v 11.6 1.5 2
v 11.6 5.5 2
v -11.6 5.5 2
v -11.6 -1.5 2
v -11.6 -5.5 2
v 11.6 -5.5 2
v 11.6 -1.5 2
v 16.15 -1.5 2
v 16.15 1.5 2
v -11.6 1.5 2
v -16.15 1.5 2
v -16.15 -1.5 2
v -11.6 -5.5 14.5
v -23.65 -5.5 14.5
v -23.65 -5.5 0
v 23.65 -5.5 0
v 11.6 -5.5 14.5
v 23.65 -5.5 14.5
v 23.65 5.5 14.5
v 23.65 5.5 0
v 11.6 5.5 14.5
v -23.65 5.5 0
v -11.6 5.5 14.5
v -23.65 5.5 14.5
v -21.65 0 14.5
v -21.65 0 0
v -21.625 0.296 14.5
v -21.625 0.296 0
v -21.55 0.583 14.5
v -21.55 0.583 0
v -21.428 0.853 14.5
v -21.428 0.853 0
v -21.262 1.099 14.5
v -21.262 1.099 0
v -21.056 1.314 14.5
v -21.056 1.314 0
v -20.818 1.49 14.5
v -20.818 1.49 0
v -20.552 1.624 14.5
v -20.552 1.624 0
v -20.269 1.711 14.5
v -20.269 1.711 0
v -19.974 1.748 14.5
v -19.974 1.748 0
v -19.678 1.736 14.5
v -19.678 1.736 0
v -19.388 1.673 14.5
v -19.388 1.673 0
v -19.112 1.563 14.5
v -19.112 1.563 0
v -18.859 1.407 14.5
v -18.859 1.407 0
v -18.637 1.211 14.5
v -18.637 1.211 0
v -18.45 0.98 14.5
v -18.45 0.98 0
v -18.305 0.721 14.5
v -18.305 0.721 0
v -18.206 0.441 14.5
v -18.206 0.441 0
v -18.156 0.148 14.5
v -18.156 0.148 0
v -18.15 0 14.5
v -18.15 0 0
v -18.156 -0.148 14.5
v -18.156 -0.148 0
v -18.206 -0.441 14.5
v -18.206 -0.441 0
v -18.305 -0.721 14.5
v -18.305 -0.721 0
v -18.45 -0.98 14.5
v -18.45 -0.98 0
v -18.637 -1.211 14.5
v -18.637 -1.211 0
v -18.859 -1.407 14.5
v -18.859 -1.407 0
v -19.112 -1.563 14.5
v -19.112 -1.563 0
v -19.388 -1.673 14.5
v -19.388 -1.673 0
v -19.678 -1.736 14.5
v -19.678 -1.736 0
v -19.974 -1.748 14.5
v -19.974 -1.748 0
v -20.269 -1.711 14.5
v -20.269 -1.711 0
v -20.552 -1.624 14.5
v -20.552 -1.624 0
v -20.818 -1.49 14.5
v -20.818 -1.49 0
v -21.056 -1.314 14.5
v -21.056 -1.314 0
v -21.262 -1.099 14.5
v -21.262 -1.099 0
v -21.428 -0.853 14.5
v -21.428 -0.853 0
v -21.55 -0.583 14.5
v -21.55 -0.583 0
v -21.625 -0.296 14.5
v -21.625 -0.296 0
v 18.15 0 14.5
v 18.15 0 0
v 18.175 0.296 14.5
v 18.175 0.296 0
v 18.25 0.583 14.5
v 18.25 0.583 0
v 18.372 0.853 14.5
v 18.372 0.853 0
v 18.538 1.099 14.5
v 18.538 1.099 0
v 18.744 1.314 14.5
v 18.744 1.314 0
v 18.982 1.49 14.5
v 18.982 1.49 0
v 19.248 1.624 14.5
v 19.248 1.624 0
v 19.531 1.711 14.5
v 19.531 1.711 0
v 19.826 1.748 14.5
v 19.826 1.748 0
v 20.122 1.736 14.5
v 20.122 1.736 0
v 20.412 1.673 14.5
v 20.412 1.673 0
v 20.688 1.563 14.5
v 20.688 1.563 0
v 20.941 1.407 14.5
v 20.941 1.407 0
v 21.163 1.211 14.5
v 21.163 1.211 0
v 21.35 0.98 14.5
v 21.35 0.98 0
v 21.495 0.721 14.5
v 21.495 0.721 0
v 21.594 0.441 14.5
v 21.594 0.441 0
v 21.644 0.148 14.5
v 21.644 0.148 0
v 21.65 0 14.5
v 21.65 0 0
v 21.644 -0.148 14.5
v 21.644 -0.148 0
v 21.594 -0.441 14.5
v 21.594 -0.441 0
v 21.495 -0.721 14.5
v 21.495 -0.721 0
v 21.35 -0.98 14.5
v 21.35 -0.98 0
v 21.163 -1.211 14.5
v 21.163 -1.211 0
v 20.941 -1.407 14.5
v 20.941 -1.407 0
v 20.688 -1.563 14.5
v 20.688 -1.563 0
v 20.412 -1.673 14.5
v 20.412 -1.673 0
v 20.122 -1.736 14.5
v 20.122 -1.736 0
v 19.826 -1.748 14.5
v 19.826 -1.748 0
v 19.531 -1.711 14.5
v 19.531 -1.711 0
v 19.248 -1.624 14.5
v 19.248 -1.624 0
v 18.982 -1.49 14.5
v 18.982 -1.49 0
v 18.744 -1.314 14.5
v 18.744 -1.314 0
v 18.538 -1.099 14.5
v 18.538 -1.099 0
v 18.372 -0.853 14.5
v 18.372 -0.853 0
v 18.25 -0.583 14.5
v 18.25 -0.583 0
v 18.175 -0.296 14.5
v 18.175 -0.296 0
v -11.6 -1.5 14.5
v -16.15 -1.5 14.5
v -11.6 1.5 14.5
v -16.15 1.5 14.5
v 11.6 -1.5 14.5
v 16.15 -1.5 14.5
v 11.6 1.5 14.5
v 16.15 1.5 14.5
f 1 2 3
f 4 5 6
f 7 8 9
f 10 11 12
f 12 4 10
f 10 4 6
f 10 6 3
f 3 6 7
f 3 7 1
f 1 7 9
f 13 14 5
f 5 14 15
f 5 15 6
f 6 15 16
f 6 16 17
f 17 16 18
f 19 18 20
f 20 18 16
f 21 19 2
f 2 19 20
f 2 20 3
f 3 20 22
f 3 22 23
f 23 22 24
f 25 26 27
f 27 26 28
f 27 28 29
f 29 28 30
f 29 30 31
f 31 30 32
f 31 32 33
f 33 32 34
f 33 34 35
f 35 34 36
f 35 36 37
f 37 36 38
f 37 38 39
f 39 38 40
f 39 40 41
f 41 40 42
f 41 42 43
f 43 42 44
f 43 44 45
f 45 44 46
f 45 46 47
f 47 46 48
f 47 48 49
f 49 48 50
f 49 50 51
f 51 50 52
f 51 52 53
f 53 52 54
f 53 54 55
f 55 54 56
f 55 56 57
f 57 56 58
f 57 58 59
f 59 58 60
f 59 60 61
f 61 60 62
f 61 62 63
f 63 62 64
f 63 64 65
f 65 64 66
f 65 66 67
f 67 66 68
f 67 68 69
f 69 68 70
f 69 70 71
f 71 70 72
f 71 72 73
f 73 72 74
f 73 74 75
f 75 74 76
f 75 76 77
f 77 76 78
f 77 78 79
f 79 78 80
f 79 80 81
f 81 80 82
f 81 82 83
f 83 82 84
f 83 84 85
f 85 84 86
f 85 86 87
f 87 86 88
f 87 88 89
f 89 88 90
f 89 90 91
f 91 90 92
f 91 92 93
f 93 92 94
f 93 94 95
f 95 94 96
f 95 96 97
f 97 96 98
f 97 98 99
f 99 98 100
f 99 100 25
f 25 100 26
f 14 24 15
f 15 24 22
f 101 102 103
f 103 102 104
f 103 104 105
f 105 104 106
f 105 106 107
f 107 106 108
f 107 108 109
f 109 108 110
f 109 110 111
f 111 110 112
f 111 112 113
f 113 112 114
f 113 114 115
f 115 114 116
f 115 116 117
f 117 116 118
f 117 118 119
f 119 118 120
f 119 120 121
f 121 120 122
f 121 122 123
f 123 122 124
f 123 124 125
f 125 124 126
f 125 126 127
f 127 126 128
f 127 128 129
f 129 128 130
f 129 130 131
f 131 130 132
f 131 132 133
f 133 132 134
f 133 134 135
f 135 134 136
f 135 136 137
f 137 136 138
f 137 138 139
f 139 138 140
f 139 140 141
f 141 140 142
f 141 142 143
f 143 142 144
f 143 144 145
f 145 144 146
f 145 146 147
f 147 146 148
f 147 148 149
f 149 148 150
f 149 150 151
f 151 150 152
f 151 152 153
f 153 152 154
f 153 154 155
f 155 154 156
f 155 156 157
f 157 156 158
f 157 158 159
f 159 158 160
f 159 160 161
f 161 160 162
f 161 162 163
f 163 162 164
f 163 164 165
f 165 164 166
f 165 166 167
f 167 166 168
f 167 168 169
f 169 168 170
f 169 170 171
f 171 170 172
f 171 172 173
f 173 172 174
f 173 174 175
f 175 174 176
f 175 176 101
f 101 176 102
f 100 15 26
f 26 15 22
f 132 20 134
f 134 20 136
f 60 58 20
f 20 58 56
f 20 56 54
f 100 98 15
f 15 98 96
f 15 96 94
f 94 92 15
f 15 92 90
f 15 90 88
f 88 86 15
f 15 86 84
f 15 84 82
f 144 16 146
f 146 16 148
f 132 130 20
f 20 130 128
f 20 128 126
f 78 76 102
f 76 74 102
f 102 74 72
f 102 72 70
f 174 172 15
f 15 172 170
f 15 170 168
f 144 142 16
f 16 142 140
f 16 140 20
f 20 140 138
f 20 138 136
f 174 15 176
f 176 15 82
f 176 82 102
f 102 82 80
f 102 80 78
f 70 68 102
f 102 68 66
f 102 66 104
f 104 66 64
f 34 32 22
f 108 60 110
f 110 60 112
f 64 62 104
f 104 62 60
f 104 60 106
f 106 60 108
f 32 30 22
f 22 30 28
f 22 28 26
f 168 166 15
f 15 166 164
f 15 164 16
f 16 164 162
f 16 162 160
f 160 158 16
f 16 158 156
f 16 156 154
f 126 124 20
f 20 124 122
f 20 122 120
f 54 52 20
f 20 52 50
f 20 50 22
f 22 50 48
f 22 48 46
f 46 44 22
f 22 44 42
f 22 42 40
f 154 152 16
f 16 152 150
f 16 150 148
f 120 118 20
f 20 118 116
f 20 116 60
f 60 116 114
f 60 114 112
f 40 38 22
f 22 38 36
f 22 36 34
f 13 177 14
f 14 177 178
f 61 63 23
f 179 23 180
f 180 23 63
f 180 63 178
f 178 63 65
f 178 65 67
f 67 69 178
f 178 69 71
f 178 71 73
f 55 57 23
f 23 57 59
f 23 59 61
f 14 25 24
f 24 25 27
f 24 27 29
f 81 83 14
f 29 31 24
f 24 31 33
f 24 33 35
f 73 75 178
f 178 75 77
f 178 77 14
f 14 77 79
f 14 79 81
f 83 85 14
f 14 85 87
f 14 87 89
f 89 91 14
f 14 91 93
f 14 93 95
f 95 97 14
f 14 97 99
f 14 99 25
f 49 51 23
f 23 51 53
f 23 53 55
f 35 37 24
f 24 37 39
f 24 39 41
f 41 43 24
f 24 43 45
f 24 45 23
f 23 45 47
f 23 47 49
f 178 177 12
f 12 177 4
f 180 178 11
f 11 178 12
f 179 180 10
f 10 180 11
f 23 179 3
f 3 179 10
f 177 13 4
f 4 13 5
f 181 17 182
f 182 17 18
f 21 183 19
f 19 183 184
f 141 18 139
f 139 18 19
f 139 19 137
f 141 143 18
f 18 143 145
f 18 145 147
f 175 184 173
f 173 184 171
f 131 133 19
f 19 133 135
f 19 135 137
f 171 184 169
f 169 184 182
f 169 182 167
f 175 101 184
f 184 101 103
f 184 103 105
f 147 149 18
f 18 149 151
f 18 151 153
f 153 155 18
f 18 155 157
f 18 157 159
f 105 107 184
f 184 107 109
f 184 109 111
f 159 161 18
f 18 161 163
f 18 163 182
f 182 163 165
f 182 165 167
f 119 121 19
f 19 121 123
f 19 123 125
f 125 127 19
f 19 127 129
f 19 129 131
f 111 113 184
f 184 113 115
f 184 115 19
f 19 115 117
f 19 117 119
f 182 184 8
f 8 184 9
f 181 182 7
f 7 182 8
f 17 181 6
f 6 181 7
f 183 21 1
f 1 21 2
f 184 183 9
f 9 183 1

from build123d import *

# Parameters (mm, degrees)
SKETCH1_R           = 1.75
BOSS_EXTRUDE1_DEPTH = 2
BOSS_EXTRUDE2_START = 2
SKETCH1_3_R         = 1.75
BOSS_EXTRUDE2_DEPTH = 12.5


with BuildPart() as part:
    # Sketch1 → Boss-Extrude1 (new body)
    with BuildSketch(Plane.XY):
        Polygon((-23.65, 5.5), (-23.65, -5.5), (-11.6, -5.5), (-11.6, -1.5), (-16.15, -1.5), (-16.15, 1.5), (-11.6, 1.5), (-11.6, 5.5), align=None)
        with Locations((-19.9, 0)):
            Circle(SKETCH1_R, mode=Mode.SUBTRACT)
        Polygon((-11.6, 1.5), (-11.6, 5.5), (11.6, 5.5), (11.6, 1.5), (16.15, 1.5), (16.15, -1.5), (11.6, -1.5), (11.6, -5.5), (-11.6, -5.5), (-11.6, -1.5), (-16.15, -1.5), (-16.15, 1.5), align=None)
        Polygon((23.65, -5.5), (11.6, -5.5), (11.6, -1.5), (16.15, -1.5), (16.15, 1.5), (11.6, 1.5), (11.6, 5.5), (23.65, 5.5), align=None)
        with Locations((19.9, 0)):
            Circle(SKETCH1_R, mode=Mode.SUBTRACT)
    extrude(amount=BOSS_EXTRUDE1_DEPTH)

    # Sketch1<3> → Boss-Extrude2 (add)
    with BuildSketch(Plane.XY.offset(BOSS_EXTRUDE2_START)):
        Polygon((-23.65, 5.5), (-23.65, -5.5), (-11.6, -5.5), (-11.6, -1.5), (-16.15, -1.5), (-16.15, 1.5), (-11.6, 1.5), (-11.6, 5.5), align=None)
        with Locations((-19.9, 0)):
            Circle(SKETCH1_3_R, mode=Mode.SUBTRACT)
        Polygon((23.65, -5.5), (11.6, -5.5), (11.6, -1.5), (16.15, -1.5), (16.15, 1.5), (11.6, 1.5), (11.6, 5.5), (23.65, 5.5), align=None)
        with Locations((19.9, 0)):
            Circle(SKETCH1_3_R, mode=Mode.SUBTRACT)
    extrude(amount=BOSS_EXTRUDE2_DEPTH)


solid = part.part
